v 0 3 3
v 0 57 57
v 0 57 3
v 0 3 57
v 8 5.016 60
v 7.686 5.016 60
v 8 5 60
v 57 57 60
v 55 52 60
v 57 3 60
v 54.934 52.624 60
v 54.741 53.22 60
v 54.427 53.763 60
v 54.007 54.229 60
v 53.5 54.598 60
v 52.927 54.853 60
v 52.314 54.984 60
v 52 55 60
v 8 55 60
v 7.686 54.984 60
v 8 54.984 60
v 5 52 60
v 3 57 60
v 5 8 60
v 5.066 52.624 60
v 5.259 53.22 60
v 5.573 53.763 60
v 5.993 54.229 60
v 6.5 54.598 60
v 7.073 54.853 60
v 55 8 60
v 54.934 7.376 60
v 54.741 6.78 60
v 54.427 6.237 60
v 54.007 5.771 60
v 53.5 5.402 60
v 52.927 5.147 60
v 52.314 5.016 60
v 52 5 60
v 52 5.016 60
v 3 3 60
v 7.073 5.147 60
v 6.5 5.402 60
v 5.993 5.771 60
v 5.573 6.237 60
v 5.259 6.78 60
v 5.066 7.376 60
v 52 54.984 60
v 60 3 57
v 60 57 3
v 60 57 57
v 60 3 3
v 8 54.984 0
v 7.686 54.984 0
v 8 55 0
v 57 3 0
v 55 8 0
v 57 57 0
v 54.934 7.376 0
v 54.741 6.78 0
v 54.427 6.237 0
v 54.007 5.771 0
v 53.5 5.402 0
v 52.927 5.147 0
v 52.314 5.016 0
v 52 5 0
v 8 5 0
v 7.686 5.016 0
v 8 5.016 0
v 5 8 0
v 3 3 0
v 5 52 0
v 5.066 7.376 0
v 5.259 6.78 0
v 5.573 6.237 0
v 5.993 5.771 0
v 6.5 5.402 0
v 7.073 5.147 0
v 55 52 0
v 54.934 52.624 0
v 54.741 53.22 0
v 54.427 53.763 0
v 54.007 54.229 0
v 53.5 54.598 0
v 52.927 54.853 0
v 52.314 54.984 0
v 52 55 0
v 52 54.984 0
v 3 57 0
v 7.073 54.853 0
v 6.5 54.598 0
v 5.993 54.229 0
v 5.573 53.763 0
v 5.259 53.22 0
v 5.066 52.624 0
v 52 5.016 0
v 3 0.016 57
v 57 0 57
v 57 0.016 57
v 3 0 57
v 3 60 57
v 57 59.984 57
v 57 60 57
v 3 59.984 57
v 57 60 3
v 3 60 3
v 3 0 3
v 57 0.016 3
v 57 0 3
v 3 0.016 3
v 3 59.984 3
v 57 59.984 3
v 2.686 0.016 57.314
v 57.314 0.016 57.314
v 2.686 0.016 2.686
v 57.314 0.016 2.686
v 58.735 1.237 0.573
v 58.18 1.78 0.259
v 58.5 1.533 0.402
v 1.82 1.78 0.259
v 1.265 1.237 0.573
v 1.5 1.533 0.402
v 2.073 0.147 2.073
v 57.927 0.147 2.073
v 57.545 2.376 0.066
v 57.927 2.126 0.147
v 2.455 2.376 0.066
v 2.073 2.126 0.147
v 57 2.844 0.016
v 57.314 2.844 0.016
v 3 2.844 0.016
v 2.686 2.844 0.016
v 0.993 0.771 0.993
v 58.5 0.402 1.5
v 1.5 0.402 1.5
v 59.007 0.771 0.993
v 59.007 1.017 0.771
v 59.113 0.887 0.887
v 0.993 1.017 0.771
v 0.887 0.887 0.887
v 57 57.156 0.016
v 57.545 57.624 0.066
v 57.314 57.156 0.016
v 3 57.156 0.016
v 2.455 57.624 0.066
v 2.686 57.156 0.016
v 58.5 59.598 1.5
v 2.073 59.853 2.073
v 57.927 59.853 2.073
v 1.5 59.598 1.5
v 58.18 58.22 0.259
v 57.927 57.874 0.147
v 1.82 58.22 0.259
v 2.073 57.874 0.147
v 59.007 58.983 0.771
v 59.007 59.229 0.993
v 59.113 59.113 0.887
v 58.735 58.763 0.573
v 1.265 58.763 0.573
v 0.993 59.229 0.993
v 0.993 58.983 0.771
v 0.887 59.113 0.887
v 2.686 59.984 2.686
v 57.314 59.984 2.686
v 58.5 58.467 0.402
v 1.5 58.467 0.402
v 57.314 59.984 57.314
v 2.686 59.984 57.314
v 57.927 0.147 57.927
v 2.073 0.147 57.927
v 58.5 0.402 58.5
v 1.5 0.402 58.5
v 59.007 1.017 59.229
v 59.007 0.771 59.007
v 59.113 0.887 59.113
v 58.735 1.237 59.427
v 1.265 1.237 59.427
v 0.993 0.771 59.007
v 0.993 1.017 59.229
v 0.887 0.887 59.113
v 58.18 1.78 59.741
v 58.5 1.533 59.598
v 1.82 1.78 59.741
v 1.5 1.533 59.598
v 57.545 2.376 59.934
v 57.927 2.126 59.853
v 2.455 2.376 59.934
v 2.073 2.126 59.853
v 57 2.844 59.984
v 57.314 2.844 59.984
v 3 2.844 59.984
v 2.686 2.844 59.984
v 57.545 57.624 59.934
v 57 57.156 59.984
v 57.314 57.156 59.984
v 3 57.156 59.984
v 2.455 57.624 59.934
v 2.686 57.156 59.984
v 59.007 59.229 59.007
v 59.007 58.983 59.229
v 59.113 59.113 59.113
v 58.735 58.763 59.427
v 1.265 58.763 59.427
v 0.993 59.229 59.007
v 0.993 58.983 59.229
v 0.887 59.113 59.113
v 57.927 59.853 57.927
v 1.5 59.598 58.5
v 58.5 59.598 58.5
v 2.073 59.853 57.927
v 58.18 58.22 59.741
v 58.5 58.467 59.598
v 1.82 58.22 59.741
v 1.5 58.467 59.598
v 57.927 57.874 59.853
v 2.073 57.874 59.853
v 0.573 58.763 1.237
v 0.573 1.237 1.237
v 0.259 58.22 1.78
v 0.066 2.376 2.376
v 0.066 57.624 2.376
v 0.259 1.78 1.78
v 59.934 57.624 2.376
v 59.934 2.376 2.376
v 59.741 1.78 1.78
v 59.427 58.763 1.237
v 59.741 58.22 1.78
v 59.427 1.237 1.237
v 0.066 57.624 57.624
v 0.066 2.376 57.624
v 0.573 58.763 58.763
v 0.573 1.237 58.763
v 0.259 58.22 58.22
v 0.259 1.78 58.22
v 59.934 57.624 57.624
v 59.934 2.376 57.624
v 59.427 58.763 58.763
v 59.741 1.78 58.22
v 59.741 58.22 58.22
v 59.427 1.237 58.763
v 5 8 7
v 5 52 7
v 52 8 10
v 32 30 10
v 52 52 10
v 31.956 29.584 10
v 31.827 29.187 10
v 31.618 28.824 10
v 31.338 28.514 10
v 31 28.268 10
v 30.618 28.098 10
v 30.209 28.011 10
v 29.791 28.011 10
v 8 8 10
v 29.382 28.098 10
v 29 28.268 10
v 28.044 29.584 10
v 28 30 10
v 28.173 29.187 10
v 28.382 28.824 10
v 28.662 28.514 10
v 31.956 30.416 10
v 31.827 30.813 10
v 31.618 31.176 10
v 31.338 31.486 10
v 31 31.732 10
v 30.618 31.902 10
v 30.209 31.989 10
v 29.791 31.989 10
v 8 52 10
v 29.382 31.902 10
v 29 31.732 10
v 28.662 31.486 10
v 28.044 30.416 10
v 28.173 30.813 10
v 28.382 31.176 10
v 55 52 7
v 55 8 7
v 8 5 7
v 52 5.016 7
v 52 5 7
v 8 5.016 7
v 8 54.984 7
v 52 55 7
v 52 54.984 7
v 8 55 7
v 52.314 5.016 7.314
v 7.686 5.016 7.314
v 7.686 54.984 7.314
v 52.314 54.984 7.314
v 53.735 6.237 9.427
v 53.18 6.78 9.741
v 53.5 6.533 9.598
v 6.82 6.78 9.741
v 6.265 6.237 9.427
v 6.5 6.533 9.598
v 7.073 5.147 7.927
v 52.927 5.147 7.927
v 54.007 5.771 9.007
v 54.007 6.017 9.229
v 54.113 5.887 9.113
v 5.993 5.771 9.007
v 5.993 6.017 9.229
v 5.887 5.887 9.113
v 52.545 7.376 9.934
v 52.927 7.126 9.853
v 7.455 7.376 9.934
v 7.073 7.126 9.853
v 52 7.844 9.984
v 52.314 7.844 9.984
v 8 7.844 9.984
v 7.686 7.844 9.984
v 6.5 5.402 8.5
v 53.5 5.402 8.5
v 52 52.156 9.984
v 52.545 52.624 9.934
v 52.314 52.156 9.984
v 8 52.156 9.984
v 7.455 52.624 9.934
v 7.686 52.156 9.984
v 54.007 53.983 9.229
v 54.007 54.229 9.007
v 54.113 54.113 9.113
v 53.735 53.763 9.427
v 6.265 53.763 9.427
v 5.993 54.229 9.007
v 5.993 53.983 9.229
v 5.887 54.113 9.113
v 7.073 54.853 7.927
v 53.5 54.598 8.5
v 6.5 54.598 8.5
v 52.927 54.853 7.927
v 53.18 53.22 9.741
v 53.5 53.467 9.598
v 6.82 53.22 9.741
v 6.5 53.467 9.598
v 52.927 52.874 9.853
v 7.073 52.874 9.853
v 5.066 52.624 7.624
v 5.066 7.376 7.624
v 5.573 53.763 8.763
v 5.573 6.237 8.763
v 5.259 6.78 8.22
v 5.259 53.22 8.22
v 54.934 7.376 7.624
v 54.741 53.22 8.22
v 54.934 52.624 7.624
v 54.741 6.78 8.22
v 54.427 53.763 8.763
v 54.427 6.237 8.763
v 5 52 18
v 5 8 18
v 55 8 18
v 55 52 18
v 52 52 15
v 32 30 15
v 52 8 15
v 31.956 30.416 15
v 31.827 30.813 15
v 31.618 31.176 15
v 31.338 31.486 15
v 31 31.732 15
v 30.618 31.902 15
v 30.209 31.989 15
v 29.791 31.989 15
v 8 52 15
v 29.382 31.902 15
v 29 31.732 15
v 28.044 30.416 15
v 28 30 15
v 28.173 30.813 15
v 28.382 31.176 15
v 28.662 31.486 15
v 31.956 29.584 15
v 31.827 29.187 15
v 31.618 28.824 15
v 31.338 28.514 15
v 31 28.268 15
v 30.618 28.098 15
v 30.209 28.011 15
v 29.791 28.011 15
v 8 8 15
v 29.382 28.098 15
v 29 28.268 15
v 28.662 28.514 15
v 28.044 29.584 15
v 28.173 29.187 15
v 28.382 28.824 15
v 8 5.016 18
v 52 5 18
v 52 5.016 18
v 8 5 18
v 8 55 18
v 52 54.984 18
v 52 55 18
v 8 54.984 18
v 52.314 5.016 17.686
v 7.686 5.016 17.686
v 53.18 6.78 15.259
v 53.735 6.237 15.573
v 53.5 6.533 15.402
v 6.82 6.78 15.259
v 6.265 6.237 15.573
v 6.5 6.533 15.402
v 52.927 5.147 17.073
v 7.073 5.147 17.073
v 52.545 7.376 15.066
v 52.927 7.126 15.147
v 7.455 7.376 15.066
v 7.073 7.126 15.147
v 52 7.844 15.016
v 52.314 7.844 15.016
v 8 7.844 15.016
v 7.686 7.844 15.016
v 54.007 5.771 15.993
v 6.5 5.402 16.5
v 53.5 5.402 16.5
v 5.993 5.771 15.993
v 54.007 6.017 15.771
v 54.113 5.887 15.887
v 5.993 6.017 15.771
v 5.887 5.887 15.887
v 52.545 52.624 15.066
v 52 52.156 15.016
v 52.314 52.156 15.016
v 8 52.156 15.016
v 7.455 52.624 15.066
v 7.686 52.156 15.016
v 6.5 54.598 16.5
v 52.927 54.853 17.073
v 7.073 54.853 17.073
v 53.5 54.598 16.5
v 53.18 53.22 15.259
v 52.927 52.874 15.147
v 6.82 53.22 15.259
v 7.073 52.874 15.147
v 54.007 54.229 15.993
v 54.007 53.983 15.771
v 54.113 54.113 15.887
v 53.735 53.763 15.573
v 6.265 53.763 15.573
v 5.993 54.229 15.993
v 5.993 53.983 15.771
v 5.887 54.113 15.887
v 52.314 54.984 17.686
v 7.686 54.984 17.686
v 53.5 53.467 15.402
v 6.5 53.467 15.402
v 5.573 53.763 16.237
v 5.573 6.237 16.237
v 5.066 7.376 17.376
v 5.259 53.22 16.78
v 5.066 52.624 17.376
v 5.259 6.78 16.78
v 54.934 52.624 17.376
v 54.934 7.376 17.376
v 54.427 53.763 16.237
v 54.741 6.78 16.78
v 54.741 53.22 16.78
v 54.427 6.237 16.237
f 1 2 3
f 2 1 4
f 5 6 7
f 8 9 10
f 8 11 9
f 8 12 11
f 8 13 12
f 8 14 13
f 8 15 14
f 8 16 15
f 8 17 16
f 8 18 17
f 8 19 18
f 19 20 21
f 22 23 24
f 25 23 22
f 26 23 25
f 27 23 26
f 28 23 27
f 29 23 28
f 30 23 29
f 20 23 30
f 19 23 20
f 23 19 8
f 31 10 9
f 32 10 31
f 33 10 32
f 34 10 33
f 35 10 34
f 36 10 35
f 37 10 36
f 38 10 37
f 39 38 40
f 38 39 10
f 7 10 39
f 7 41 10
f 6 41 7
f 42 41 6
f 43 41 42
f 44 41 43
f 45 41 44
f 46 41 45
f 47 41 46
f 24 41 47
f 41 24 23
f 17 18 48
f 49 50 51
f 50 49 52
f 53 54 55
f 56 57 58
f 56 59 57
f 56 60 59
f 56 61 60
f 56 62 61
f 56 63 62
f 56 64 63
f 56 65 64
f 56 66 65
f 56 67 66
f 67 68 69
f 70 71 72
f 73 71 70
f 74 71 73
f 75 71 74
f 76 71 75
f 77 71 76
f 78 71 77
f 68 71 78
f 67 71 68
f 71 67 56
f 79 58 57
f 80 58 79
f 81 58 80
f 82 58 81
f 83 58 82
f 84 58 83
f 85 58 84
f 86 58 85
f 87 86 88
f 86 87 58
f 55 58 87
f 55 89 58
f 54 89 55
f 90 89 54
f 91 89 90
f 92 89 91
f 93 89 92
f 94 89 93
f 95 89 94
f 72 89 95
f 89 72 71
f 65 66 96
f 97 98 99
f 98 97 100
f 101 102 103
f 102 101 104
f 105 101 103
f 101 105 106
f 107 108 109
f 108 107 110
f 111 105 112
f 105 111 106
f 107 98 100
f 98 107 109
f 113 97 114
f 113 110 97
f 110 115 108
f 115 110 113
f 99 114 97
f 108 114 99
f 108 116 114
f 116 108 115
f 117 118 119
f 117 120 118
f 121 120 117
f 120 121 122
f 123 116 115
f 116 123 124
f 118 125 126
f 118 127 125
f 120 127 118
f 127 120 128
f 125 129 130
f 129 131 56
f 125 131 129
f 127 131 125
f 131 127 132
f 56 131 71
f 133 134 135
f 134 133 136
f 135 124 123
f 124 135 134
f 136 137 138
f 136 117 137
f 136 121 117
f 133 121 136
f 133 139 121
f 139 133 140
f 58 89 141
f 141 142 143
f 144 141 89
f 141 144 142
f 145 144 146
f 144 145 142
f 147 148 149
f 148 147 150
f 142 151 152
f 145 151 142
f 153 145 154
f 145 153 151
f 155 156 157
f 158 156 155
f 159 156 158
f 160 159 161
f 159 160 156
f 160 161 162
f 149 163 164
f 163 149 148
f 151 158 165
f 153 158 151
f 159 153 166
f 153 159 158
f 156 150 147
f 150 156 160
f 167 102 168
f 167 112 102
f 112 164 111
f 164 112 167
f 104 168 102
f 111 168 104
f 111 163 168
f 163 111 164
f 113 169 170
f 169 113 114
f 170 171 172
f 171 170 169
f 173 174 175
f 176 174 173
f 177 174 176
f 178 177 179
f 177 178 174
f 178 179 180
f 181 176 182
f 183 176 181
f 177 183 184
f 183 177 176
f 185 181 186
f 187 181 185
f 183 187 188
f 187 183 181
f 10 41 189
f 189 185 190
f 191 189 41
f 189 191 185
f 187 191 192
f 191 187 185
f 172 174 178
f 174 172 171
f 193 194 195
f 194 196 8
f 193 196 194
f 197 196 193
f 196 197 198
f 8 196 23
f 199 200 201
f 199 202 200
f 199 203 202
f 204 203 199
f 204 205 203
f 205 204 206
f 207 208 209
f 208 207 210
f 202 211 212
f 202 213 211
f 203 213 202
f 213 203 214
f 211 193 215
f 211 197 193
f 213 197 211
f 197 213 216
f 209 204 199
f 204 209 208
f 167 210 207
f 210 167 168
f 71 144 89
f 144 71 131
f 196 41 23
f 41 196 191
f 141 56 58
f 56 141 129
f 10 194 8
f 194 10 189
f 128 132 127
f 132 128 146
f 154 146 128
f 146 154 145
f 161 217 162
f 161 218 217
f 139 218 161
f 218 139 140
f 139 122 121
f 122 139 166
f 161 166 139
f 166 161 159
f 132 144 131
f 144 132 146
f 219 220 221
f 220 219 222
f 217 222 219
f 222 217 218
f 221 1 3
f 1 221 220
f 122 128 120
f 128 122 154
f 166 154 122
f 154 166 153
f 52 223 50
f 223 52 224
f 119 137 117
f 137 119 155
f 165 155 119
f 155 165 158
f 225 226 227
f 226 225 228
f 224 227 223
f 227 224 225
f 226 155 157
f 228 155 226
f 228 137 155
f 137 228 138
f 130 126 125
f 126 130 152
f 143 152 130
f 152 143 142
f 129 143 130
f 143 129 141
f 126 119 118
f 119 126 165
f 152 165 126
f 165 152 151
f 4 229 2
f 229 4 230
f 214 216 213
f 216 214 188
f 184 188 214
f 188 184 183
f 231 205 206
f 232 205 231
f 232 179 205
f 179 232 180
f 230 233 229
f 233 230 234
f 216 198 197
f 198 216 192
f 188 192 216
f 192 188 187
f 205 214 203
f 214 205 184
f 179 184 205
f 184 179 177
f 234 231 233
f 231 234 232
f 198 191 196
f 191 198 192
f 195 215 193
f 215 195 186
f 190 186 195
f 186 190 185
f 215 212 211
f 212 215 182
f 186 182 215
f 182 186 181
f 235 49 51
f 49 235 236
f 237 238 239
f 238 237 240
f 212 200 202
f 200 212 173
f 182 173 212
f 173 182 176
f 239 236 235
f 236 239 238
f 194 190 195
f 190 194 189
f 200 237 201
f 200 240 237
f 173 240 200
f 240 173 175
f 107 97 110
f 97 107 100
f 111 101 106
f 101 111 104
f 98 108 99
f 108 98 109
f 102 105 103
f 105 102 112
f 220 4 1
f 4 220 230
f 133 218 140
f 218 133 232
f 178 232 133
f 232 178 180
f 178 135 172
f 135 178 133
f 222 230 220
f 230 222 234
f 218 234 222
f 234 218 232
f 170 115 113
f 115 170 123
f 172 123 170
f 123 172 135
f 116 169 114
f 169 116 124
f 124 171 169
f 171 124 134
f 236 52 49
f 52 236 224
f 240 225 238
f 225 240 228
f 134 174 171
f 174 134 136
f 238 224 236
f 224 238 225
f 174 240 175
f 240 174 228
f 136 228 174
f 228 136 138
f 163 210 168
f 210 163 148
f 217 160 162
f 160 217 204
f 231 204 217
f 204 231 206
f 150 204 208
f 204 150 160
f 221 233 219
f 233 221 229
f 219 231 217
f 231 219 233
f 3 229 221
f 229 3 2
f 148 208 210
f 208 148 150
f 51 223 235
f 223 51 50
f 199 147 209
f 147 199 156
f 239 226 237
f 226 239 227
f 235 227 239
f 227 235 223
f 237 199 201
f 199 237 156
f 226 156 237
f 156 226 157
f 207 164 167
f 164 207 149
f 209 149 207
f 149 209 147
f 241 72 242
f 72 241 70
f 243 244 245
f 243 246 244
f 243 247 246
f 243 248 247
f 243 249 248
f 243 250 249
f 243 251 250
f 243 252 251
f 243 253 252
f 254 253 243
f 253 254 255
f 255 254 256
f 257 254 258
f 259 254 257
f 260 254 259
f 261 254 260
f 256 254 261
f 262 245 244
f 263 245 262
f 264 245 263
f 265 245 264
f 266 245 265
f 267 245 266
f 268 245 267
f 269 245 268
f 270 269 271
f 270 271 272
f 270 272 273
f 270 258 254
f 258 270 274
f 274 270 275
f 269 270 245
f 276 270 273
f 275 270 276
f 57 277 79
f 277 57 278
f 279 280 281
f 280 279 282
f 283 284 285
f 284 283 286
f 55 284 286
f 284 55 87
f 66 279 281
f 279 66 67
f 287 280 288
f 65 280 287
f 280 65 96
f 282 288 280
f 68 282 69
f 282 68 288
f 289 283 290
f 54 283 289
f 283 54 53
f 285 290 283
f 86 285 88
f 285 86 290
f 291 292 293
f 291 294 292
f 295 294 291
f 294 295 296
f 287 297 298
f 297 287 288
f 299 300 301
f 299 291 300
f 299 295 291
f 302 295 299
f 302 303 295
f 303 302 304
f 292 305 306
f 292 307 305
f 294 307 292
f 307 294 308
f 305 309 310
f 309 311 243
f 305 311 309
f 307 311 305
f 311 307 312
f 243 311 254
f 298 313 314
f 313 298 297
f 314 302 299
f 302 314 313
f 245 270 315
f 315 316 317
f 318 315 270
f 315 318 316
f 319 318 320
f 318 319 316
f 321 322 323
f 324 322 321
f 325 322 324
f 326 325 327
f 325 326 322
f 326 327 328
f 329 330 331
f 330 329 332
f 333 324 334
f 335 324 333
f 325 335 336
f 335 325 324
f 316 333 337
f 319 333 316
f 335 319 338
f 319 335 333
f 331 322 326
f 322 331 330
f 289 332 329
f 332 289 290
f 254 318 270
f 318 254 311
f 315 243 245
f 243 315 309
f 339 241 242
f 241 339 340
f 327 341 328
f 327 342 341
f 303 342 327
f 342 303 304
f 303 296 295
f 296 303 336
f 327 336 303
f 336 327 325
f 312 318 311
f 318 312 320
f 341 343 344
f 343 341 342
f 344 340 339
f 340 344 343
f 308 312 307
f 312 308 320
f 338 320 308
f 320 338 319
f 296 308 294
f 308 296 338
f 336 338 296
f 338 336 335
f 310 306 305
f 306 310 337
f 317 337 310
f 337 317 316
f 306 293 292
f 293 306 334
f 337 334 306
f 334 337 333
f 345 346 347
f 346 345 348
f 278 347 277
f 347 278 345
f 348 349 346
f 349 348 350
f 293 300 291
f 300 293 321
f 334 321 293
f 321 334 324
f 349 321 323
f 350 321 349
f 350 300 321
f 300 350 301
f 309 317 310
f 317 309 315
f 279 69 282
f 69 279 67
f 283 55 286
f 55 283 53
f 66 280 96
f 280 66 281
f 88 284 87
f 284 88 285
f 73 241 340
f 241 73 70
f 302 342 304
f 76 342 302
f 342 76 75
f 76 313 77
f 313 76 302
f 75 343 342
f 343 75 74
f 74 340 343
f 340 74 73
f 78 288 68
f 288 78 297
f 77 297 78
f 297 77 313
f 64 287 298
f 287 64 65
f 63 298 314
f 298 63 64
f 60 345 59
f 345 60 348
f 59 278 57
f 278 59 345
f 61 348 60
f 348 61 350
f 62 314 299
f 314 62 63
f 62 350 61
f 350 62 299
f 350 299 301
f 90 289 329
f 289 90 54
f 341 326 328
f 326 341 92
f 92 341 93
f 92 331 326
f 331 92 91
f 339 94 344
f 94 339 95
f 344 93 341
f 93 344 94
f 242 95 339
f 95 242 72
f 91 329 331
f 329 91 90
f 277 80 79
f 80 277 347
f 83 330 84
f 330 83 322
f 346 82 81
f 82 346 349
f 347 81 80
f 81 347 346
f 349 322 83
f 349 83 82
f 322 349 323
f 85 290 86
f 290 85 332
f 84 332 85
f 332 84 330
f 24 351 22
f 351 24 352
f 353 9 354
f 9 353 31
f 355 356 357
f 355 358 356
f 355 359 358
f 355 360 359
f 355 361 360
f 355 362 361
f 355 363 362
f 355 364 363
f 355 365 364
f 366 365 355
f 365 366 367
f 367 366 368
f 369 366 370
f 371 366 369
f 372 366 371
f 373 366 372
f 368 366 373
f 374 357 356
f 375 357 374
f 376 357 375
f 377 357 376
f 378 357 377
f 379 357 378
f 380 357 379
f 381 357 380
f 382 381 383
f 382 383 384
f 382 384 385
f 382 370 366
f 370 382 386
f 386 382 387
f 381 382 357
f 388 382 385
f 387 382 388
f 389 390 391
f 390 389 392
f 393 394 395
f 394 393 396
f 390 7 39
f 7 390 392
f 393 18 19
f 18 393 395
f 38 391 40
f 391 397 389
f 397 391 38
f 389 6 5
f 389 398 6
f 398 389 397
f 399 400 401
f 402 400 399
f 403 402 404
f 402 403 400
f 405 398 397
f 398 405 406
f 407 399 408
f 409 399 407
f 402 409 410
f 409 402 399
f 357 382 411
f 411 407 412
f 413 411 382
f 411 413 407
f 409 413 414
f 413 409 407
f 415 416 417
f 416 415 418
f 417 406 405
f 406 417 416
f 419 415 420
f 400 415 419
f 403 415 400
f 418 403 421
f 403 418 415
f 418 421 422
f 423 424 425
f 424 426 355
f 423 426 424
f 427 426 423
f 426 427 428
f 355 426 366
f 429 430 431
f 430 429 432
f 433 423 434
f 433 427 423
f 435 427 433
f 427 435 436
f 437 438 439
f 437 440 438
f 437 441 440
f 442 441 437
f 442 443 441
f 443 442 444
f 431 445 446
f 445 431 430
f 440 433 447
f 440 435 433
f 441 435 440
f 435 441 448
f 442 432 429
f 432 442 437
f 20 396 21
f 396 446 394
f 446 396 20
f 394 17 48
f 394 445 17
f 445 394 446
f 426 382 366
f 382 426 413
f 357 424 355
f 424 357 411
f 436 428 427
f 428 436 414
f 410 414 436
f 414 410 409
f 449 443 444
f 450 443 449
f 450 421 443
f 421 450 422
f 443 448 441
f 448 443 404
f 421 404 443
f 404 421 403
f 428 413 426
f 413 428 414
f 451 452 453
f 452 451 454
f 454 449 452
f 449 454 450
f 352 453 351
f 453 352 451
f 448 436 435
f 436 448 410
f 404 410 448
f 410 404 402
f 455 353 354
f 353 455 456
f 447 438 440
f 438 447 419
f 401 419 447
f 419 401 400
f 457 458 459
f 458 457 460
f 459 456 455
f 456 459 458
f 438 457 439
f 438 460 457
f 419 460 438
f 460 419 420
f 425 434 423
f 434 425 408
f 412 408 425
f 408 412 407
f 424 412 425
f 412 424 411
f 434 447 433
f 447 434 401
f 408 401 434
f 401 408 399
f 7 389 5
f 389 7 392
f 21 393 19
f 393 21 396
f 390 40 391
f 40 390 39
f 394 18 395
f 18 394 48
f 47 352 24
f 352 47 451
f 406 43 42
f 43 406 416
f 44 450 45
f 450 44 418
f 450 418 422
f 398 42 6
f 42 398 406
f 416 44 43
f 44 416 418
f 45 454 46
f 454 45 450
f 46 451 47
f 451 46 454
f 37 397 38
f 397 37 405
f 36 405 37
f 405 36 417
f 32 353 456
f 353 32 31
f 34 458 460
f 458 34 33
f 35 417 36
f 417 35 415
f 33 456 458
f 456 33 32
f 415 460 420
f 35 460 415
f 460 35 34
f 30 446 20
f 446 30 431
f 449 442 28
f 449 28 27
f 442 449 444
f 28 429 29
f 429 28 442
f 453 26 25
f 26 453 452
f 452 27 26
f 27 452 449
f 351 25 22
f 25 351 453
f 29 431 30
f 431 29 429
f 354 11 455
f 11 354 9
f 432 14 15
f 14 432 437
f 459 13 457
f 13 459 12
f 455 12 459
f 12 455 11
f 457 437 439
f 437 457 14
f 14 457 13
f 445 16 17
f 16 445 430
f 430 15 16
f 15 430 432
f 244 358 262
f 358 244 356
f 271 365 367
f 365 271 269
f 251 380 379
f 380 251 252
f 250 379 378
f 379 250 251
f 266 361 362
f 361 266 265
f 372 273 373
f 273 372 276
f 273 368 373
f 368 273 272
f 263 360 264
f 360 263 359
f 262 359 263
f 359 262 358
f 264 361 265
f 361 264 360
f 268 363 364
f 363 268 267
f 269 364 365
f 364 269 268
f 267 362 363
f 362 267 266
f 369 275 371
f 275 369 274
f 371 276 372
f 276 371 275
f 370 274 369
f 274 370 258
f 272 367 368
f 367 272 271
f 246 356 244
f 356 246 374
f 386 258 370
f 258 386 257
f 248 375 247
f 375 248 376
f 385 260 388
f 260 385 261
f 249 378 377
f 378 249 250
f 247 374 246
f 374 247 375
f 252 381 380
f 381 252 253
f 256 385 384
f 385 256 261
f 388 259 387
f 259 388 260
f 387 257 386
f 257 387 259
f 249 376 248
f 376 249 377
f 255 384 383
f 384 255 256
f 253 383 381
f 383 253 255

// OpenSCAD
Bstrana = 60;


module KrychBat(strana )
{
    stena = 5;
    velikostPrep = 5;
    polohaPrep = 10;
    ovalVnej = 3;
    ovalVnit = 3;
    stranaVnit = strana - 2*stena;
    prozDiry = 4;
    prestnost = 30;
    difference()
    {
        OvalnaKrichleCisla([strana,strana,strana], ovalVnej, ovalVnej, ovalVnej,prestnost);
        translate([stena,stena,-10]) OvalnaKrichleCisla([stranaVnit,stranaVnit,10+polohaPrep], ovalVnit, ovalVnit, ovalVnit,prestnost);
        translate([stena,stena,polohaPrep +velikostPrep ]) OvalnaKrichleCisla([stranaVnit,stranaVnit,strana], ovalVnit, ovalVnit, ovalVnit,prestnost);
        translate([strana/2,strana/2,0]) cylinder(h = strana, d = prozDiry,$fn=prestnost);
    
    }
}


KrychBat(Bstrana);


//Kód pro vytvoření oválných kvádrů
module OvalnaKrichleX(Rozdmery, zakulaceni,st = 10)
{
	union() {
	translate([0,zakulaceni,0]) cube([Rozdmery[0],Rozdmery[1] - zakulaceni * 2,Rozdmery[2]],center=false);
	translate([0,0,zakulaceni]) cube([Rozdmery[0],Rozdmery[1],Rozdmery[2] - zakulaceni * 2],center=false);
	translate([0,zakulaceni,zakulaceni]) rotate([0,90,0]) cylinder( Rozdmery[0],   zakulaceni, zakulaceni,false,$fn=st);
	translate([0,Rozdmery[1] - zakulaceni,zakulaceni]) rotate([0,90,0]) cylinder( Rozdmery[0],   zakulaceni, zakulaceni,false,$fn=st);
	translate([0,zakulaceni,Rozdmery[2] - zakulaceni]) rotate([0,90,0]) cylinder( Rozdmery[0],   zakulaceni, zakulaceni,false,$fn=st);
	translate([0,Rozdmery[1] - zakulaceni,Rozdmery[2] - zakulaceni]) rotate([0,90,0]) cylinder( Rozdmery[0],   zakulaceni, zakulaceni,false,$fn=st);
	}
}


module OvalnaKrichleY(Rozdmery, zakulaceni,st = 10)
{
	union() {
	translate([zakulaceni,0,0]) cube([Rozdmery[0] - zakulaceni * 2,Rozdmery[1],Rozdmery[2]],center=false);
	translate([0,0,zakulaceni]) cube([Rozdmery[0],Rozdmery[1],Rozdmery[2] - zakulaceni * 2],center=false);
	translate([zakulaceni,0,zakulaceni]) rotate([270,0,0]) cylinder( Rozdmery[1],   zakulaceni, zakulaceni,false,$fn=st);
	translate([Rozdmery[0] - zakulaceni,0,zakulaceni]) rotate([270,0,0]) cylinder( Rozdmery[1],   zakulaceni, zakulaceni,false,$fn=st);
	translate([zakulaceni,0,Rozdmery[2] - zakulaceni]) rotate([270,0,0]) cylinder( Rozdmery[1],   zakulaceni, zakulaceni,false,$fn=st);
	translate([Rozdmery[0] - zakulaceni,0,Rozdmery[2] - zakulaceni]) rotate([270,0,0]) cylinder( Rozdmery[1],   zakulaceni, zakulaceni,false,$fn=st);
	}
}


module OvalnaKrichleZ(Rozdmery, zakulaceni,st = 10)
{
	union() {
	translate([zakulaceni,0,0]) cube([Rozdmery[0] - zakulaceni * 2,Rozdmery[1],Rozdmery[2]],center=false);
	translate([0,zakulaceni,0]) cube([Rozdmery[0],Rozdmery[1]  - zakulaceni * 2,Rozdmery[2]],center=false);
	translate([zakulaceni,zakulaceni,0]) rotate([0,0,0]) cylinder( Rozdmery[2],   zakulaceni, zakulaceni,false,$fn=st);
	translate([Rozdmery[0] - zakulaceni,zakulaceni,0]) rotate([0,0,0]) cylinder( Rozdmery[2],   zakulaceni, zakulaceni,false,$fn=st);
	translate([zakulaceni,Rozdmery[1] - zakulaceni,0]) rotate([0,0,0]) cylinder( Rozdmery[2],   zakulaceni, zakulaceni,false,$fn=st);
	translate([Rozdmery[0] - zakulaceni,Rozdmery[1] - zakulaceni,0]) rotate([0,0,0]) cylinder( Rozdmery[2],   zakulaceni, zakulaceni,false,$fn=st);
	}
}


module OvalnaKrichle(Rozdmery, zakulaceni, osaX, osaY, osaZ, st = 10)
{
	cont = false;
	intersection()
	{
		if(osaX == true)
		{
			OvalnaKrichleX(Rozdmery,zakulaceni,st);
			cont = true;
		}
		if(osaY == true)
		{
			OvalnaKrichleY(Rozdmery,zakulaceni,st);
			cont = true;
		}
		if(osaZ == true)
		{
			OvalnaKrichleZ(Rozdmery,zakulaceni,st);
			cont = true;
		}
		if(cont == false)
		{
			cube(Rozdmery,center=false);
		}
	}
}


module OvalnaKrichleCisla(Rozdmery, osaX, osaY, osaZ ,st = 10 )
{
	cont = false;
	intersection()
	{
		if(osaX != 0)
		{
			OvalnaKrichleX(Rozdmery,osaX,st);
			cont = true;
		}
		if(osaY != 0)
		{
			OvalnaKrichleY(Rozdmery,osaY,st);
			cont = true;
		}
		if(osaZ != 0)
		{
			OvalnaKrichleZ(Rozdmery,osaZ,st);
			cont = true;
		}
		if(cont == false)
		{
			cube(Rozdmery,center=false);
		}
	}
}
